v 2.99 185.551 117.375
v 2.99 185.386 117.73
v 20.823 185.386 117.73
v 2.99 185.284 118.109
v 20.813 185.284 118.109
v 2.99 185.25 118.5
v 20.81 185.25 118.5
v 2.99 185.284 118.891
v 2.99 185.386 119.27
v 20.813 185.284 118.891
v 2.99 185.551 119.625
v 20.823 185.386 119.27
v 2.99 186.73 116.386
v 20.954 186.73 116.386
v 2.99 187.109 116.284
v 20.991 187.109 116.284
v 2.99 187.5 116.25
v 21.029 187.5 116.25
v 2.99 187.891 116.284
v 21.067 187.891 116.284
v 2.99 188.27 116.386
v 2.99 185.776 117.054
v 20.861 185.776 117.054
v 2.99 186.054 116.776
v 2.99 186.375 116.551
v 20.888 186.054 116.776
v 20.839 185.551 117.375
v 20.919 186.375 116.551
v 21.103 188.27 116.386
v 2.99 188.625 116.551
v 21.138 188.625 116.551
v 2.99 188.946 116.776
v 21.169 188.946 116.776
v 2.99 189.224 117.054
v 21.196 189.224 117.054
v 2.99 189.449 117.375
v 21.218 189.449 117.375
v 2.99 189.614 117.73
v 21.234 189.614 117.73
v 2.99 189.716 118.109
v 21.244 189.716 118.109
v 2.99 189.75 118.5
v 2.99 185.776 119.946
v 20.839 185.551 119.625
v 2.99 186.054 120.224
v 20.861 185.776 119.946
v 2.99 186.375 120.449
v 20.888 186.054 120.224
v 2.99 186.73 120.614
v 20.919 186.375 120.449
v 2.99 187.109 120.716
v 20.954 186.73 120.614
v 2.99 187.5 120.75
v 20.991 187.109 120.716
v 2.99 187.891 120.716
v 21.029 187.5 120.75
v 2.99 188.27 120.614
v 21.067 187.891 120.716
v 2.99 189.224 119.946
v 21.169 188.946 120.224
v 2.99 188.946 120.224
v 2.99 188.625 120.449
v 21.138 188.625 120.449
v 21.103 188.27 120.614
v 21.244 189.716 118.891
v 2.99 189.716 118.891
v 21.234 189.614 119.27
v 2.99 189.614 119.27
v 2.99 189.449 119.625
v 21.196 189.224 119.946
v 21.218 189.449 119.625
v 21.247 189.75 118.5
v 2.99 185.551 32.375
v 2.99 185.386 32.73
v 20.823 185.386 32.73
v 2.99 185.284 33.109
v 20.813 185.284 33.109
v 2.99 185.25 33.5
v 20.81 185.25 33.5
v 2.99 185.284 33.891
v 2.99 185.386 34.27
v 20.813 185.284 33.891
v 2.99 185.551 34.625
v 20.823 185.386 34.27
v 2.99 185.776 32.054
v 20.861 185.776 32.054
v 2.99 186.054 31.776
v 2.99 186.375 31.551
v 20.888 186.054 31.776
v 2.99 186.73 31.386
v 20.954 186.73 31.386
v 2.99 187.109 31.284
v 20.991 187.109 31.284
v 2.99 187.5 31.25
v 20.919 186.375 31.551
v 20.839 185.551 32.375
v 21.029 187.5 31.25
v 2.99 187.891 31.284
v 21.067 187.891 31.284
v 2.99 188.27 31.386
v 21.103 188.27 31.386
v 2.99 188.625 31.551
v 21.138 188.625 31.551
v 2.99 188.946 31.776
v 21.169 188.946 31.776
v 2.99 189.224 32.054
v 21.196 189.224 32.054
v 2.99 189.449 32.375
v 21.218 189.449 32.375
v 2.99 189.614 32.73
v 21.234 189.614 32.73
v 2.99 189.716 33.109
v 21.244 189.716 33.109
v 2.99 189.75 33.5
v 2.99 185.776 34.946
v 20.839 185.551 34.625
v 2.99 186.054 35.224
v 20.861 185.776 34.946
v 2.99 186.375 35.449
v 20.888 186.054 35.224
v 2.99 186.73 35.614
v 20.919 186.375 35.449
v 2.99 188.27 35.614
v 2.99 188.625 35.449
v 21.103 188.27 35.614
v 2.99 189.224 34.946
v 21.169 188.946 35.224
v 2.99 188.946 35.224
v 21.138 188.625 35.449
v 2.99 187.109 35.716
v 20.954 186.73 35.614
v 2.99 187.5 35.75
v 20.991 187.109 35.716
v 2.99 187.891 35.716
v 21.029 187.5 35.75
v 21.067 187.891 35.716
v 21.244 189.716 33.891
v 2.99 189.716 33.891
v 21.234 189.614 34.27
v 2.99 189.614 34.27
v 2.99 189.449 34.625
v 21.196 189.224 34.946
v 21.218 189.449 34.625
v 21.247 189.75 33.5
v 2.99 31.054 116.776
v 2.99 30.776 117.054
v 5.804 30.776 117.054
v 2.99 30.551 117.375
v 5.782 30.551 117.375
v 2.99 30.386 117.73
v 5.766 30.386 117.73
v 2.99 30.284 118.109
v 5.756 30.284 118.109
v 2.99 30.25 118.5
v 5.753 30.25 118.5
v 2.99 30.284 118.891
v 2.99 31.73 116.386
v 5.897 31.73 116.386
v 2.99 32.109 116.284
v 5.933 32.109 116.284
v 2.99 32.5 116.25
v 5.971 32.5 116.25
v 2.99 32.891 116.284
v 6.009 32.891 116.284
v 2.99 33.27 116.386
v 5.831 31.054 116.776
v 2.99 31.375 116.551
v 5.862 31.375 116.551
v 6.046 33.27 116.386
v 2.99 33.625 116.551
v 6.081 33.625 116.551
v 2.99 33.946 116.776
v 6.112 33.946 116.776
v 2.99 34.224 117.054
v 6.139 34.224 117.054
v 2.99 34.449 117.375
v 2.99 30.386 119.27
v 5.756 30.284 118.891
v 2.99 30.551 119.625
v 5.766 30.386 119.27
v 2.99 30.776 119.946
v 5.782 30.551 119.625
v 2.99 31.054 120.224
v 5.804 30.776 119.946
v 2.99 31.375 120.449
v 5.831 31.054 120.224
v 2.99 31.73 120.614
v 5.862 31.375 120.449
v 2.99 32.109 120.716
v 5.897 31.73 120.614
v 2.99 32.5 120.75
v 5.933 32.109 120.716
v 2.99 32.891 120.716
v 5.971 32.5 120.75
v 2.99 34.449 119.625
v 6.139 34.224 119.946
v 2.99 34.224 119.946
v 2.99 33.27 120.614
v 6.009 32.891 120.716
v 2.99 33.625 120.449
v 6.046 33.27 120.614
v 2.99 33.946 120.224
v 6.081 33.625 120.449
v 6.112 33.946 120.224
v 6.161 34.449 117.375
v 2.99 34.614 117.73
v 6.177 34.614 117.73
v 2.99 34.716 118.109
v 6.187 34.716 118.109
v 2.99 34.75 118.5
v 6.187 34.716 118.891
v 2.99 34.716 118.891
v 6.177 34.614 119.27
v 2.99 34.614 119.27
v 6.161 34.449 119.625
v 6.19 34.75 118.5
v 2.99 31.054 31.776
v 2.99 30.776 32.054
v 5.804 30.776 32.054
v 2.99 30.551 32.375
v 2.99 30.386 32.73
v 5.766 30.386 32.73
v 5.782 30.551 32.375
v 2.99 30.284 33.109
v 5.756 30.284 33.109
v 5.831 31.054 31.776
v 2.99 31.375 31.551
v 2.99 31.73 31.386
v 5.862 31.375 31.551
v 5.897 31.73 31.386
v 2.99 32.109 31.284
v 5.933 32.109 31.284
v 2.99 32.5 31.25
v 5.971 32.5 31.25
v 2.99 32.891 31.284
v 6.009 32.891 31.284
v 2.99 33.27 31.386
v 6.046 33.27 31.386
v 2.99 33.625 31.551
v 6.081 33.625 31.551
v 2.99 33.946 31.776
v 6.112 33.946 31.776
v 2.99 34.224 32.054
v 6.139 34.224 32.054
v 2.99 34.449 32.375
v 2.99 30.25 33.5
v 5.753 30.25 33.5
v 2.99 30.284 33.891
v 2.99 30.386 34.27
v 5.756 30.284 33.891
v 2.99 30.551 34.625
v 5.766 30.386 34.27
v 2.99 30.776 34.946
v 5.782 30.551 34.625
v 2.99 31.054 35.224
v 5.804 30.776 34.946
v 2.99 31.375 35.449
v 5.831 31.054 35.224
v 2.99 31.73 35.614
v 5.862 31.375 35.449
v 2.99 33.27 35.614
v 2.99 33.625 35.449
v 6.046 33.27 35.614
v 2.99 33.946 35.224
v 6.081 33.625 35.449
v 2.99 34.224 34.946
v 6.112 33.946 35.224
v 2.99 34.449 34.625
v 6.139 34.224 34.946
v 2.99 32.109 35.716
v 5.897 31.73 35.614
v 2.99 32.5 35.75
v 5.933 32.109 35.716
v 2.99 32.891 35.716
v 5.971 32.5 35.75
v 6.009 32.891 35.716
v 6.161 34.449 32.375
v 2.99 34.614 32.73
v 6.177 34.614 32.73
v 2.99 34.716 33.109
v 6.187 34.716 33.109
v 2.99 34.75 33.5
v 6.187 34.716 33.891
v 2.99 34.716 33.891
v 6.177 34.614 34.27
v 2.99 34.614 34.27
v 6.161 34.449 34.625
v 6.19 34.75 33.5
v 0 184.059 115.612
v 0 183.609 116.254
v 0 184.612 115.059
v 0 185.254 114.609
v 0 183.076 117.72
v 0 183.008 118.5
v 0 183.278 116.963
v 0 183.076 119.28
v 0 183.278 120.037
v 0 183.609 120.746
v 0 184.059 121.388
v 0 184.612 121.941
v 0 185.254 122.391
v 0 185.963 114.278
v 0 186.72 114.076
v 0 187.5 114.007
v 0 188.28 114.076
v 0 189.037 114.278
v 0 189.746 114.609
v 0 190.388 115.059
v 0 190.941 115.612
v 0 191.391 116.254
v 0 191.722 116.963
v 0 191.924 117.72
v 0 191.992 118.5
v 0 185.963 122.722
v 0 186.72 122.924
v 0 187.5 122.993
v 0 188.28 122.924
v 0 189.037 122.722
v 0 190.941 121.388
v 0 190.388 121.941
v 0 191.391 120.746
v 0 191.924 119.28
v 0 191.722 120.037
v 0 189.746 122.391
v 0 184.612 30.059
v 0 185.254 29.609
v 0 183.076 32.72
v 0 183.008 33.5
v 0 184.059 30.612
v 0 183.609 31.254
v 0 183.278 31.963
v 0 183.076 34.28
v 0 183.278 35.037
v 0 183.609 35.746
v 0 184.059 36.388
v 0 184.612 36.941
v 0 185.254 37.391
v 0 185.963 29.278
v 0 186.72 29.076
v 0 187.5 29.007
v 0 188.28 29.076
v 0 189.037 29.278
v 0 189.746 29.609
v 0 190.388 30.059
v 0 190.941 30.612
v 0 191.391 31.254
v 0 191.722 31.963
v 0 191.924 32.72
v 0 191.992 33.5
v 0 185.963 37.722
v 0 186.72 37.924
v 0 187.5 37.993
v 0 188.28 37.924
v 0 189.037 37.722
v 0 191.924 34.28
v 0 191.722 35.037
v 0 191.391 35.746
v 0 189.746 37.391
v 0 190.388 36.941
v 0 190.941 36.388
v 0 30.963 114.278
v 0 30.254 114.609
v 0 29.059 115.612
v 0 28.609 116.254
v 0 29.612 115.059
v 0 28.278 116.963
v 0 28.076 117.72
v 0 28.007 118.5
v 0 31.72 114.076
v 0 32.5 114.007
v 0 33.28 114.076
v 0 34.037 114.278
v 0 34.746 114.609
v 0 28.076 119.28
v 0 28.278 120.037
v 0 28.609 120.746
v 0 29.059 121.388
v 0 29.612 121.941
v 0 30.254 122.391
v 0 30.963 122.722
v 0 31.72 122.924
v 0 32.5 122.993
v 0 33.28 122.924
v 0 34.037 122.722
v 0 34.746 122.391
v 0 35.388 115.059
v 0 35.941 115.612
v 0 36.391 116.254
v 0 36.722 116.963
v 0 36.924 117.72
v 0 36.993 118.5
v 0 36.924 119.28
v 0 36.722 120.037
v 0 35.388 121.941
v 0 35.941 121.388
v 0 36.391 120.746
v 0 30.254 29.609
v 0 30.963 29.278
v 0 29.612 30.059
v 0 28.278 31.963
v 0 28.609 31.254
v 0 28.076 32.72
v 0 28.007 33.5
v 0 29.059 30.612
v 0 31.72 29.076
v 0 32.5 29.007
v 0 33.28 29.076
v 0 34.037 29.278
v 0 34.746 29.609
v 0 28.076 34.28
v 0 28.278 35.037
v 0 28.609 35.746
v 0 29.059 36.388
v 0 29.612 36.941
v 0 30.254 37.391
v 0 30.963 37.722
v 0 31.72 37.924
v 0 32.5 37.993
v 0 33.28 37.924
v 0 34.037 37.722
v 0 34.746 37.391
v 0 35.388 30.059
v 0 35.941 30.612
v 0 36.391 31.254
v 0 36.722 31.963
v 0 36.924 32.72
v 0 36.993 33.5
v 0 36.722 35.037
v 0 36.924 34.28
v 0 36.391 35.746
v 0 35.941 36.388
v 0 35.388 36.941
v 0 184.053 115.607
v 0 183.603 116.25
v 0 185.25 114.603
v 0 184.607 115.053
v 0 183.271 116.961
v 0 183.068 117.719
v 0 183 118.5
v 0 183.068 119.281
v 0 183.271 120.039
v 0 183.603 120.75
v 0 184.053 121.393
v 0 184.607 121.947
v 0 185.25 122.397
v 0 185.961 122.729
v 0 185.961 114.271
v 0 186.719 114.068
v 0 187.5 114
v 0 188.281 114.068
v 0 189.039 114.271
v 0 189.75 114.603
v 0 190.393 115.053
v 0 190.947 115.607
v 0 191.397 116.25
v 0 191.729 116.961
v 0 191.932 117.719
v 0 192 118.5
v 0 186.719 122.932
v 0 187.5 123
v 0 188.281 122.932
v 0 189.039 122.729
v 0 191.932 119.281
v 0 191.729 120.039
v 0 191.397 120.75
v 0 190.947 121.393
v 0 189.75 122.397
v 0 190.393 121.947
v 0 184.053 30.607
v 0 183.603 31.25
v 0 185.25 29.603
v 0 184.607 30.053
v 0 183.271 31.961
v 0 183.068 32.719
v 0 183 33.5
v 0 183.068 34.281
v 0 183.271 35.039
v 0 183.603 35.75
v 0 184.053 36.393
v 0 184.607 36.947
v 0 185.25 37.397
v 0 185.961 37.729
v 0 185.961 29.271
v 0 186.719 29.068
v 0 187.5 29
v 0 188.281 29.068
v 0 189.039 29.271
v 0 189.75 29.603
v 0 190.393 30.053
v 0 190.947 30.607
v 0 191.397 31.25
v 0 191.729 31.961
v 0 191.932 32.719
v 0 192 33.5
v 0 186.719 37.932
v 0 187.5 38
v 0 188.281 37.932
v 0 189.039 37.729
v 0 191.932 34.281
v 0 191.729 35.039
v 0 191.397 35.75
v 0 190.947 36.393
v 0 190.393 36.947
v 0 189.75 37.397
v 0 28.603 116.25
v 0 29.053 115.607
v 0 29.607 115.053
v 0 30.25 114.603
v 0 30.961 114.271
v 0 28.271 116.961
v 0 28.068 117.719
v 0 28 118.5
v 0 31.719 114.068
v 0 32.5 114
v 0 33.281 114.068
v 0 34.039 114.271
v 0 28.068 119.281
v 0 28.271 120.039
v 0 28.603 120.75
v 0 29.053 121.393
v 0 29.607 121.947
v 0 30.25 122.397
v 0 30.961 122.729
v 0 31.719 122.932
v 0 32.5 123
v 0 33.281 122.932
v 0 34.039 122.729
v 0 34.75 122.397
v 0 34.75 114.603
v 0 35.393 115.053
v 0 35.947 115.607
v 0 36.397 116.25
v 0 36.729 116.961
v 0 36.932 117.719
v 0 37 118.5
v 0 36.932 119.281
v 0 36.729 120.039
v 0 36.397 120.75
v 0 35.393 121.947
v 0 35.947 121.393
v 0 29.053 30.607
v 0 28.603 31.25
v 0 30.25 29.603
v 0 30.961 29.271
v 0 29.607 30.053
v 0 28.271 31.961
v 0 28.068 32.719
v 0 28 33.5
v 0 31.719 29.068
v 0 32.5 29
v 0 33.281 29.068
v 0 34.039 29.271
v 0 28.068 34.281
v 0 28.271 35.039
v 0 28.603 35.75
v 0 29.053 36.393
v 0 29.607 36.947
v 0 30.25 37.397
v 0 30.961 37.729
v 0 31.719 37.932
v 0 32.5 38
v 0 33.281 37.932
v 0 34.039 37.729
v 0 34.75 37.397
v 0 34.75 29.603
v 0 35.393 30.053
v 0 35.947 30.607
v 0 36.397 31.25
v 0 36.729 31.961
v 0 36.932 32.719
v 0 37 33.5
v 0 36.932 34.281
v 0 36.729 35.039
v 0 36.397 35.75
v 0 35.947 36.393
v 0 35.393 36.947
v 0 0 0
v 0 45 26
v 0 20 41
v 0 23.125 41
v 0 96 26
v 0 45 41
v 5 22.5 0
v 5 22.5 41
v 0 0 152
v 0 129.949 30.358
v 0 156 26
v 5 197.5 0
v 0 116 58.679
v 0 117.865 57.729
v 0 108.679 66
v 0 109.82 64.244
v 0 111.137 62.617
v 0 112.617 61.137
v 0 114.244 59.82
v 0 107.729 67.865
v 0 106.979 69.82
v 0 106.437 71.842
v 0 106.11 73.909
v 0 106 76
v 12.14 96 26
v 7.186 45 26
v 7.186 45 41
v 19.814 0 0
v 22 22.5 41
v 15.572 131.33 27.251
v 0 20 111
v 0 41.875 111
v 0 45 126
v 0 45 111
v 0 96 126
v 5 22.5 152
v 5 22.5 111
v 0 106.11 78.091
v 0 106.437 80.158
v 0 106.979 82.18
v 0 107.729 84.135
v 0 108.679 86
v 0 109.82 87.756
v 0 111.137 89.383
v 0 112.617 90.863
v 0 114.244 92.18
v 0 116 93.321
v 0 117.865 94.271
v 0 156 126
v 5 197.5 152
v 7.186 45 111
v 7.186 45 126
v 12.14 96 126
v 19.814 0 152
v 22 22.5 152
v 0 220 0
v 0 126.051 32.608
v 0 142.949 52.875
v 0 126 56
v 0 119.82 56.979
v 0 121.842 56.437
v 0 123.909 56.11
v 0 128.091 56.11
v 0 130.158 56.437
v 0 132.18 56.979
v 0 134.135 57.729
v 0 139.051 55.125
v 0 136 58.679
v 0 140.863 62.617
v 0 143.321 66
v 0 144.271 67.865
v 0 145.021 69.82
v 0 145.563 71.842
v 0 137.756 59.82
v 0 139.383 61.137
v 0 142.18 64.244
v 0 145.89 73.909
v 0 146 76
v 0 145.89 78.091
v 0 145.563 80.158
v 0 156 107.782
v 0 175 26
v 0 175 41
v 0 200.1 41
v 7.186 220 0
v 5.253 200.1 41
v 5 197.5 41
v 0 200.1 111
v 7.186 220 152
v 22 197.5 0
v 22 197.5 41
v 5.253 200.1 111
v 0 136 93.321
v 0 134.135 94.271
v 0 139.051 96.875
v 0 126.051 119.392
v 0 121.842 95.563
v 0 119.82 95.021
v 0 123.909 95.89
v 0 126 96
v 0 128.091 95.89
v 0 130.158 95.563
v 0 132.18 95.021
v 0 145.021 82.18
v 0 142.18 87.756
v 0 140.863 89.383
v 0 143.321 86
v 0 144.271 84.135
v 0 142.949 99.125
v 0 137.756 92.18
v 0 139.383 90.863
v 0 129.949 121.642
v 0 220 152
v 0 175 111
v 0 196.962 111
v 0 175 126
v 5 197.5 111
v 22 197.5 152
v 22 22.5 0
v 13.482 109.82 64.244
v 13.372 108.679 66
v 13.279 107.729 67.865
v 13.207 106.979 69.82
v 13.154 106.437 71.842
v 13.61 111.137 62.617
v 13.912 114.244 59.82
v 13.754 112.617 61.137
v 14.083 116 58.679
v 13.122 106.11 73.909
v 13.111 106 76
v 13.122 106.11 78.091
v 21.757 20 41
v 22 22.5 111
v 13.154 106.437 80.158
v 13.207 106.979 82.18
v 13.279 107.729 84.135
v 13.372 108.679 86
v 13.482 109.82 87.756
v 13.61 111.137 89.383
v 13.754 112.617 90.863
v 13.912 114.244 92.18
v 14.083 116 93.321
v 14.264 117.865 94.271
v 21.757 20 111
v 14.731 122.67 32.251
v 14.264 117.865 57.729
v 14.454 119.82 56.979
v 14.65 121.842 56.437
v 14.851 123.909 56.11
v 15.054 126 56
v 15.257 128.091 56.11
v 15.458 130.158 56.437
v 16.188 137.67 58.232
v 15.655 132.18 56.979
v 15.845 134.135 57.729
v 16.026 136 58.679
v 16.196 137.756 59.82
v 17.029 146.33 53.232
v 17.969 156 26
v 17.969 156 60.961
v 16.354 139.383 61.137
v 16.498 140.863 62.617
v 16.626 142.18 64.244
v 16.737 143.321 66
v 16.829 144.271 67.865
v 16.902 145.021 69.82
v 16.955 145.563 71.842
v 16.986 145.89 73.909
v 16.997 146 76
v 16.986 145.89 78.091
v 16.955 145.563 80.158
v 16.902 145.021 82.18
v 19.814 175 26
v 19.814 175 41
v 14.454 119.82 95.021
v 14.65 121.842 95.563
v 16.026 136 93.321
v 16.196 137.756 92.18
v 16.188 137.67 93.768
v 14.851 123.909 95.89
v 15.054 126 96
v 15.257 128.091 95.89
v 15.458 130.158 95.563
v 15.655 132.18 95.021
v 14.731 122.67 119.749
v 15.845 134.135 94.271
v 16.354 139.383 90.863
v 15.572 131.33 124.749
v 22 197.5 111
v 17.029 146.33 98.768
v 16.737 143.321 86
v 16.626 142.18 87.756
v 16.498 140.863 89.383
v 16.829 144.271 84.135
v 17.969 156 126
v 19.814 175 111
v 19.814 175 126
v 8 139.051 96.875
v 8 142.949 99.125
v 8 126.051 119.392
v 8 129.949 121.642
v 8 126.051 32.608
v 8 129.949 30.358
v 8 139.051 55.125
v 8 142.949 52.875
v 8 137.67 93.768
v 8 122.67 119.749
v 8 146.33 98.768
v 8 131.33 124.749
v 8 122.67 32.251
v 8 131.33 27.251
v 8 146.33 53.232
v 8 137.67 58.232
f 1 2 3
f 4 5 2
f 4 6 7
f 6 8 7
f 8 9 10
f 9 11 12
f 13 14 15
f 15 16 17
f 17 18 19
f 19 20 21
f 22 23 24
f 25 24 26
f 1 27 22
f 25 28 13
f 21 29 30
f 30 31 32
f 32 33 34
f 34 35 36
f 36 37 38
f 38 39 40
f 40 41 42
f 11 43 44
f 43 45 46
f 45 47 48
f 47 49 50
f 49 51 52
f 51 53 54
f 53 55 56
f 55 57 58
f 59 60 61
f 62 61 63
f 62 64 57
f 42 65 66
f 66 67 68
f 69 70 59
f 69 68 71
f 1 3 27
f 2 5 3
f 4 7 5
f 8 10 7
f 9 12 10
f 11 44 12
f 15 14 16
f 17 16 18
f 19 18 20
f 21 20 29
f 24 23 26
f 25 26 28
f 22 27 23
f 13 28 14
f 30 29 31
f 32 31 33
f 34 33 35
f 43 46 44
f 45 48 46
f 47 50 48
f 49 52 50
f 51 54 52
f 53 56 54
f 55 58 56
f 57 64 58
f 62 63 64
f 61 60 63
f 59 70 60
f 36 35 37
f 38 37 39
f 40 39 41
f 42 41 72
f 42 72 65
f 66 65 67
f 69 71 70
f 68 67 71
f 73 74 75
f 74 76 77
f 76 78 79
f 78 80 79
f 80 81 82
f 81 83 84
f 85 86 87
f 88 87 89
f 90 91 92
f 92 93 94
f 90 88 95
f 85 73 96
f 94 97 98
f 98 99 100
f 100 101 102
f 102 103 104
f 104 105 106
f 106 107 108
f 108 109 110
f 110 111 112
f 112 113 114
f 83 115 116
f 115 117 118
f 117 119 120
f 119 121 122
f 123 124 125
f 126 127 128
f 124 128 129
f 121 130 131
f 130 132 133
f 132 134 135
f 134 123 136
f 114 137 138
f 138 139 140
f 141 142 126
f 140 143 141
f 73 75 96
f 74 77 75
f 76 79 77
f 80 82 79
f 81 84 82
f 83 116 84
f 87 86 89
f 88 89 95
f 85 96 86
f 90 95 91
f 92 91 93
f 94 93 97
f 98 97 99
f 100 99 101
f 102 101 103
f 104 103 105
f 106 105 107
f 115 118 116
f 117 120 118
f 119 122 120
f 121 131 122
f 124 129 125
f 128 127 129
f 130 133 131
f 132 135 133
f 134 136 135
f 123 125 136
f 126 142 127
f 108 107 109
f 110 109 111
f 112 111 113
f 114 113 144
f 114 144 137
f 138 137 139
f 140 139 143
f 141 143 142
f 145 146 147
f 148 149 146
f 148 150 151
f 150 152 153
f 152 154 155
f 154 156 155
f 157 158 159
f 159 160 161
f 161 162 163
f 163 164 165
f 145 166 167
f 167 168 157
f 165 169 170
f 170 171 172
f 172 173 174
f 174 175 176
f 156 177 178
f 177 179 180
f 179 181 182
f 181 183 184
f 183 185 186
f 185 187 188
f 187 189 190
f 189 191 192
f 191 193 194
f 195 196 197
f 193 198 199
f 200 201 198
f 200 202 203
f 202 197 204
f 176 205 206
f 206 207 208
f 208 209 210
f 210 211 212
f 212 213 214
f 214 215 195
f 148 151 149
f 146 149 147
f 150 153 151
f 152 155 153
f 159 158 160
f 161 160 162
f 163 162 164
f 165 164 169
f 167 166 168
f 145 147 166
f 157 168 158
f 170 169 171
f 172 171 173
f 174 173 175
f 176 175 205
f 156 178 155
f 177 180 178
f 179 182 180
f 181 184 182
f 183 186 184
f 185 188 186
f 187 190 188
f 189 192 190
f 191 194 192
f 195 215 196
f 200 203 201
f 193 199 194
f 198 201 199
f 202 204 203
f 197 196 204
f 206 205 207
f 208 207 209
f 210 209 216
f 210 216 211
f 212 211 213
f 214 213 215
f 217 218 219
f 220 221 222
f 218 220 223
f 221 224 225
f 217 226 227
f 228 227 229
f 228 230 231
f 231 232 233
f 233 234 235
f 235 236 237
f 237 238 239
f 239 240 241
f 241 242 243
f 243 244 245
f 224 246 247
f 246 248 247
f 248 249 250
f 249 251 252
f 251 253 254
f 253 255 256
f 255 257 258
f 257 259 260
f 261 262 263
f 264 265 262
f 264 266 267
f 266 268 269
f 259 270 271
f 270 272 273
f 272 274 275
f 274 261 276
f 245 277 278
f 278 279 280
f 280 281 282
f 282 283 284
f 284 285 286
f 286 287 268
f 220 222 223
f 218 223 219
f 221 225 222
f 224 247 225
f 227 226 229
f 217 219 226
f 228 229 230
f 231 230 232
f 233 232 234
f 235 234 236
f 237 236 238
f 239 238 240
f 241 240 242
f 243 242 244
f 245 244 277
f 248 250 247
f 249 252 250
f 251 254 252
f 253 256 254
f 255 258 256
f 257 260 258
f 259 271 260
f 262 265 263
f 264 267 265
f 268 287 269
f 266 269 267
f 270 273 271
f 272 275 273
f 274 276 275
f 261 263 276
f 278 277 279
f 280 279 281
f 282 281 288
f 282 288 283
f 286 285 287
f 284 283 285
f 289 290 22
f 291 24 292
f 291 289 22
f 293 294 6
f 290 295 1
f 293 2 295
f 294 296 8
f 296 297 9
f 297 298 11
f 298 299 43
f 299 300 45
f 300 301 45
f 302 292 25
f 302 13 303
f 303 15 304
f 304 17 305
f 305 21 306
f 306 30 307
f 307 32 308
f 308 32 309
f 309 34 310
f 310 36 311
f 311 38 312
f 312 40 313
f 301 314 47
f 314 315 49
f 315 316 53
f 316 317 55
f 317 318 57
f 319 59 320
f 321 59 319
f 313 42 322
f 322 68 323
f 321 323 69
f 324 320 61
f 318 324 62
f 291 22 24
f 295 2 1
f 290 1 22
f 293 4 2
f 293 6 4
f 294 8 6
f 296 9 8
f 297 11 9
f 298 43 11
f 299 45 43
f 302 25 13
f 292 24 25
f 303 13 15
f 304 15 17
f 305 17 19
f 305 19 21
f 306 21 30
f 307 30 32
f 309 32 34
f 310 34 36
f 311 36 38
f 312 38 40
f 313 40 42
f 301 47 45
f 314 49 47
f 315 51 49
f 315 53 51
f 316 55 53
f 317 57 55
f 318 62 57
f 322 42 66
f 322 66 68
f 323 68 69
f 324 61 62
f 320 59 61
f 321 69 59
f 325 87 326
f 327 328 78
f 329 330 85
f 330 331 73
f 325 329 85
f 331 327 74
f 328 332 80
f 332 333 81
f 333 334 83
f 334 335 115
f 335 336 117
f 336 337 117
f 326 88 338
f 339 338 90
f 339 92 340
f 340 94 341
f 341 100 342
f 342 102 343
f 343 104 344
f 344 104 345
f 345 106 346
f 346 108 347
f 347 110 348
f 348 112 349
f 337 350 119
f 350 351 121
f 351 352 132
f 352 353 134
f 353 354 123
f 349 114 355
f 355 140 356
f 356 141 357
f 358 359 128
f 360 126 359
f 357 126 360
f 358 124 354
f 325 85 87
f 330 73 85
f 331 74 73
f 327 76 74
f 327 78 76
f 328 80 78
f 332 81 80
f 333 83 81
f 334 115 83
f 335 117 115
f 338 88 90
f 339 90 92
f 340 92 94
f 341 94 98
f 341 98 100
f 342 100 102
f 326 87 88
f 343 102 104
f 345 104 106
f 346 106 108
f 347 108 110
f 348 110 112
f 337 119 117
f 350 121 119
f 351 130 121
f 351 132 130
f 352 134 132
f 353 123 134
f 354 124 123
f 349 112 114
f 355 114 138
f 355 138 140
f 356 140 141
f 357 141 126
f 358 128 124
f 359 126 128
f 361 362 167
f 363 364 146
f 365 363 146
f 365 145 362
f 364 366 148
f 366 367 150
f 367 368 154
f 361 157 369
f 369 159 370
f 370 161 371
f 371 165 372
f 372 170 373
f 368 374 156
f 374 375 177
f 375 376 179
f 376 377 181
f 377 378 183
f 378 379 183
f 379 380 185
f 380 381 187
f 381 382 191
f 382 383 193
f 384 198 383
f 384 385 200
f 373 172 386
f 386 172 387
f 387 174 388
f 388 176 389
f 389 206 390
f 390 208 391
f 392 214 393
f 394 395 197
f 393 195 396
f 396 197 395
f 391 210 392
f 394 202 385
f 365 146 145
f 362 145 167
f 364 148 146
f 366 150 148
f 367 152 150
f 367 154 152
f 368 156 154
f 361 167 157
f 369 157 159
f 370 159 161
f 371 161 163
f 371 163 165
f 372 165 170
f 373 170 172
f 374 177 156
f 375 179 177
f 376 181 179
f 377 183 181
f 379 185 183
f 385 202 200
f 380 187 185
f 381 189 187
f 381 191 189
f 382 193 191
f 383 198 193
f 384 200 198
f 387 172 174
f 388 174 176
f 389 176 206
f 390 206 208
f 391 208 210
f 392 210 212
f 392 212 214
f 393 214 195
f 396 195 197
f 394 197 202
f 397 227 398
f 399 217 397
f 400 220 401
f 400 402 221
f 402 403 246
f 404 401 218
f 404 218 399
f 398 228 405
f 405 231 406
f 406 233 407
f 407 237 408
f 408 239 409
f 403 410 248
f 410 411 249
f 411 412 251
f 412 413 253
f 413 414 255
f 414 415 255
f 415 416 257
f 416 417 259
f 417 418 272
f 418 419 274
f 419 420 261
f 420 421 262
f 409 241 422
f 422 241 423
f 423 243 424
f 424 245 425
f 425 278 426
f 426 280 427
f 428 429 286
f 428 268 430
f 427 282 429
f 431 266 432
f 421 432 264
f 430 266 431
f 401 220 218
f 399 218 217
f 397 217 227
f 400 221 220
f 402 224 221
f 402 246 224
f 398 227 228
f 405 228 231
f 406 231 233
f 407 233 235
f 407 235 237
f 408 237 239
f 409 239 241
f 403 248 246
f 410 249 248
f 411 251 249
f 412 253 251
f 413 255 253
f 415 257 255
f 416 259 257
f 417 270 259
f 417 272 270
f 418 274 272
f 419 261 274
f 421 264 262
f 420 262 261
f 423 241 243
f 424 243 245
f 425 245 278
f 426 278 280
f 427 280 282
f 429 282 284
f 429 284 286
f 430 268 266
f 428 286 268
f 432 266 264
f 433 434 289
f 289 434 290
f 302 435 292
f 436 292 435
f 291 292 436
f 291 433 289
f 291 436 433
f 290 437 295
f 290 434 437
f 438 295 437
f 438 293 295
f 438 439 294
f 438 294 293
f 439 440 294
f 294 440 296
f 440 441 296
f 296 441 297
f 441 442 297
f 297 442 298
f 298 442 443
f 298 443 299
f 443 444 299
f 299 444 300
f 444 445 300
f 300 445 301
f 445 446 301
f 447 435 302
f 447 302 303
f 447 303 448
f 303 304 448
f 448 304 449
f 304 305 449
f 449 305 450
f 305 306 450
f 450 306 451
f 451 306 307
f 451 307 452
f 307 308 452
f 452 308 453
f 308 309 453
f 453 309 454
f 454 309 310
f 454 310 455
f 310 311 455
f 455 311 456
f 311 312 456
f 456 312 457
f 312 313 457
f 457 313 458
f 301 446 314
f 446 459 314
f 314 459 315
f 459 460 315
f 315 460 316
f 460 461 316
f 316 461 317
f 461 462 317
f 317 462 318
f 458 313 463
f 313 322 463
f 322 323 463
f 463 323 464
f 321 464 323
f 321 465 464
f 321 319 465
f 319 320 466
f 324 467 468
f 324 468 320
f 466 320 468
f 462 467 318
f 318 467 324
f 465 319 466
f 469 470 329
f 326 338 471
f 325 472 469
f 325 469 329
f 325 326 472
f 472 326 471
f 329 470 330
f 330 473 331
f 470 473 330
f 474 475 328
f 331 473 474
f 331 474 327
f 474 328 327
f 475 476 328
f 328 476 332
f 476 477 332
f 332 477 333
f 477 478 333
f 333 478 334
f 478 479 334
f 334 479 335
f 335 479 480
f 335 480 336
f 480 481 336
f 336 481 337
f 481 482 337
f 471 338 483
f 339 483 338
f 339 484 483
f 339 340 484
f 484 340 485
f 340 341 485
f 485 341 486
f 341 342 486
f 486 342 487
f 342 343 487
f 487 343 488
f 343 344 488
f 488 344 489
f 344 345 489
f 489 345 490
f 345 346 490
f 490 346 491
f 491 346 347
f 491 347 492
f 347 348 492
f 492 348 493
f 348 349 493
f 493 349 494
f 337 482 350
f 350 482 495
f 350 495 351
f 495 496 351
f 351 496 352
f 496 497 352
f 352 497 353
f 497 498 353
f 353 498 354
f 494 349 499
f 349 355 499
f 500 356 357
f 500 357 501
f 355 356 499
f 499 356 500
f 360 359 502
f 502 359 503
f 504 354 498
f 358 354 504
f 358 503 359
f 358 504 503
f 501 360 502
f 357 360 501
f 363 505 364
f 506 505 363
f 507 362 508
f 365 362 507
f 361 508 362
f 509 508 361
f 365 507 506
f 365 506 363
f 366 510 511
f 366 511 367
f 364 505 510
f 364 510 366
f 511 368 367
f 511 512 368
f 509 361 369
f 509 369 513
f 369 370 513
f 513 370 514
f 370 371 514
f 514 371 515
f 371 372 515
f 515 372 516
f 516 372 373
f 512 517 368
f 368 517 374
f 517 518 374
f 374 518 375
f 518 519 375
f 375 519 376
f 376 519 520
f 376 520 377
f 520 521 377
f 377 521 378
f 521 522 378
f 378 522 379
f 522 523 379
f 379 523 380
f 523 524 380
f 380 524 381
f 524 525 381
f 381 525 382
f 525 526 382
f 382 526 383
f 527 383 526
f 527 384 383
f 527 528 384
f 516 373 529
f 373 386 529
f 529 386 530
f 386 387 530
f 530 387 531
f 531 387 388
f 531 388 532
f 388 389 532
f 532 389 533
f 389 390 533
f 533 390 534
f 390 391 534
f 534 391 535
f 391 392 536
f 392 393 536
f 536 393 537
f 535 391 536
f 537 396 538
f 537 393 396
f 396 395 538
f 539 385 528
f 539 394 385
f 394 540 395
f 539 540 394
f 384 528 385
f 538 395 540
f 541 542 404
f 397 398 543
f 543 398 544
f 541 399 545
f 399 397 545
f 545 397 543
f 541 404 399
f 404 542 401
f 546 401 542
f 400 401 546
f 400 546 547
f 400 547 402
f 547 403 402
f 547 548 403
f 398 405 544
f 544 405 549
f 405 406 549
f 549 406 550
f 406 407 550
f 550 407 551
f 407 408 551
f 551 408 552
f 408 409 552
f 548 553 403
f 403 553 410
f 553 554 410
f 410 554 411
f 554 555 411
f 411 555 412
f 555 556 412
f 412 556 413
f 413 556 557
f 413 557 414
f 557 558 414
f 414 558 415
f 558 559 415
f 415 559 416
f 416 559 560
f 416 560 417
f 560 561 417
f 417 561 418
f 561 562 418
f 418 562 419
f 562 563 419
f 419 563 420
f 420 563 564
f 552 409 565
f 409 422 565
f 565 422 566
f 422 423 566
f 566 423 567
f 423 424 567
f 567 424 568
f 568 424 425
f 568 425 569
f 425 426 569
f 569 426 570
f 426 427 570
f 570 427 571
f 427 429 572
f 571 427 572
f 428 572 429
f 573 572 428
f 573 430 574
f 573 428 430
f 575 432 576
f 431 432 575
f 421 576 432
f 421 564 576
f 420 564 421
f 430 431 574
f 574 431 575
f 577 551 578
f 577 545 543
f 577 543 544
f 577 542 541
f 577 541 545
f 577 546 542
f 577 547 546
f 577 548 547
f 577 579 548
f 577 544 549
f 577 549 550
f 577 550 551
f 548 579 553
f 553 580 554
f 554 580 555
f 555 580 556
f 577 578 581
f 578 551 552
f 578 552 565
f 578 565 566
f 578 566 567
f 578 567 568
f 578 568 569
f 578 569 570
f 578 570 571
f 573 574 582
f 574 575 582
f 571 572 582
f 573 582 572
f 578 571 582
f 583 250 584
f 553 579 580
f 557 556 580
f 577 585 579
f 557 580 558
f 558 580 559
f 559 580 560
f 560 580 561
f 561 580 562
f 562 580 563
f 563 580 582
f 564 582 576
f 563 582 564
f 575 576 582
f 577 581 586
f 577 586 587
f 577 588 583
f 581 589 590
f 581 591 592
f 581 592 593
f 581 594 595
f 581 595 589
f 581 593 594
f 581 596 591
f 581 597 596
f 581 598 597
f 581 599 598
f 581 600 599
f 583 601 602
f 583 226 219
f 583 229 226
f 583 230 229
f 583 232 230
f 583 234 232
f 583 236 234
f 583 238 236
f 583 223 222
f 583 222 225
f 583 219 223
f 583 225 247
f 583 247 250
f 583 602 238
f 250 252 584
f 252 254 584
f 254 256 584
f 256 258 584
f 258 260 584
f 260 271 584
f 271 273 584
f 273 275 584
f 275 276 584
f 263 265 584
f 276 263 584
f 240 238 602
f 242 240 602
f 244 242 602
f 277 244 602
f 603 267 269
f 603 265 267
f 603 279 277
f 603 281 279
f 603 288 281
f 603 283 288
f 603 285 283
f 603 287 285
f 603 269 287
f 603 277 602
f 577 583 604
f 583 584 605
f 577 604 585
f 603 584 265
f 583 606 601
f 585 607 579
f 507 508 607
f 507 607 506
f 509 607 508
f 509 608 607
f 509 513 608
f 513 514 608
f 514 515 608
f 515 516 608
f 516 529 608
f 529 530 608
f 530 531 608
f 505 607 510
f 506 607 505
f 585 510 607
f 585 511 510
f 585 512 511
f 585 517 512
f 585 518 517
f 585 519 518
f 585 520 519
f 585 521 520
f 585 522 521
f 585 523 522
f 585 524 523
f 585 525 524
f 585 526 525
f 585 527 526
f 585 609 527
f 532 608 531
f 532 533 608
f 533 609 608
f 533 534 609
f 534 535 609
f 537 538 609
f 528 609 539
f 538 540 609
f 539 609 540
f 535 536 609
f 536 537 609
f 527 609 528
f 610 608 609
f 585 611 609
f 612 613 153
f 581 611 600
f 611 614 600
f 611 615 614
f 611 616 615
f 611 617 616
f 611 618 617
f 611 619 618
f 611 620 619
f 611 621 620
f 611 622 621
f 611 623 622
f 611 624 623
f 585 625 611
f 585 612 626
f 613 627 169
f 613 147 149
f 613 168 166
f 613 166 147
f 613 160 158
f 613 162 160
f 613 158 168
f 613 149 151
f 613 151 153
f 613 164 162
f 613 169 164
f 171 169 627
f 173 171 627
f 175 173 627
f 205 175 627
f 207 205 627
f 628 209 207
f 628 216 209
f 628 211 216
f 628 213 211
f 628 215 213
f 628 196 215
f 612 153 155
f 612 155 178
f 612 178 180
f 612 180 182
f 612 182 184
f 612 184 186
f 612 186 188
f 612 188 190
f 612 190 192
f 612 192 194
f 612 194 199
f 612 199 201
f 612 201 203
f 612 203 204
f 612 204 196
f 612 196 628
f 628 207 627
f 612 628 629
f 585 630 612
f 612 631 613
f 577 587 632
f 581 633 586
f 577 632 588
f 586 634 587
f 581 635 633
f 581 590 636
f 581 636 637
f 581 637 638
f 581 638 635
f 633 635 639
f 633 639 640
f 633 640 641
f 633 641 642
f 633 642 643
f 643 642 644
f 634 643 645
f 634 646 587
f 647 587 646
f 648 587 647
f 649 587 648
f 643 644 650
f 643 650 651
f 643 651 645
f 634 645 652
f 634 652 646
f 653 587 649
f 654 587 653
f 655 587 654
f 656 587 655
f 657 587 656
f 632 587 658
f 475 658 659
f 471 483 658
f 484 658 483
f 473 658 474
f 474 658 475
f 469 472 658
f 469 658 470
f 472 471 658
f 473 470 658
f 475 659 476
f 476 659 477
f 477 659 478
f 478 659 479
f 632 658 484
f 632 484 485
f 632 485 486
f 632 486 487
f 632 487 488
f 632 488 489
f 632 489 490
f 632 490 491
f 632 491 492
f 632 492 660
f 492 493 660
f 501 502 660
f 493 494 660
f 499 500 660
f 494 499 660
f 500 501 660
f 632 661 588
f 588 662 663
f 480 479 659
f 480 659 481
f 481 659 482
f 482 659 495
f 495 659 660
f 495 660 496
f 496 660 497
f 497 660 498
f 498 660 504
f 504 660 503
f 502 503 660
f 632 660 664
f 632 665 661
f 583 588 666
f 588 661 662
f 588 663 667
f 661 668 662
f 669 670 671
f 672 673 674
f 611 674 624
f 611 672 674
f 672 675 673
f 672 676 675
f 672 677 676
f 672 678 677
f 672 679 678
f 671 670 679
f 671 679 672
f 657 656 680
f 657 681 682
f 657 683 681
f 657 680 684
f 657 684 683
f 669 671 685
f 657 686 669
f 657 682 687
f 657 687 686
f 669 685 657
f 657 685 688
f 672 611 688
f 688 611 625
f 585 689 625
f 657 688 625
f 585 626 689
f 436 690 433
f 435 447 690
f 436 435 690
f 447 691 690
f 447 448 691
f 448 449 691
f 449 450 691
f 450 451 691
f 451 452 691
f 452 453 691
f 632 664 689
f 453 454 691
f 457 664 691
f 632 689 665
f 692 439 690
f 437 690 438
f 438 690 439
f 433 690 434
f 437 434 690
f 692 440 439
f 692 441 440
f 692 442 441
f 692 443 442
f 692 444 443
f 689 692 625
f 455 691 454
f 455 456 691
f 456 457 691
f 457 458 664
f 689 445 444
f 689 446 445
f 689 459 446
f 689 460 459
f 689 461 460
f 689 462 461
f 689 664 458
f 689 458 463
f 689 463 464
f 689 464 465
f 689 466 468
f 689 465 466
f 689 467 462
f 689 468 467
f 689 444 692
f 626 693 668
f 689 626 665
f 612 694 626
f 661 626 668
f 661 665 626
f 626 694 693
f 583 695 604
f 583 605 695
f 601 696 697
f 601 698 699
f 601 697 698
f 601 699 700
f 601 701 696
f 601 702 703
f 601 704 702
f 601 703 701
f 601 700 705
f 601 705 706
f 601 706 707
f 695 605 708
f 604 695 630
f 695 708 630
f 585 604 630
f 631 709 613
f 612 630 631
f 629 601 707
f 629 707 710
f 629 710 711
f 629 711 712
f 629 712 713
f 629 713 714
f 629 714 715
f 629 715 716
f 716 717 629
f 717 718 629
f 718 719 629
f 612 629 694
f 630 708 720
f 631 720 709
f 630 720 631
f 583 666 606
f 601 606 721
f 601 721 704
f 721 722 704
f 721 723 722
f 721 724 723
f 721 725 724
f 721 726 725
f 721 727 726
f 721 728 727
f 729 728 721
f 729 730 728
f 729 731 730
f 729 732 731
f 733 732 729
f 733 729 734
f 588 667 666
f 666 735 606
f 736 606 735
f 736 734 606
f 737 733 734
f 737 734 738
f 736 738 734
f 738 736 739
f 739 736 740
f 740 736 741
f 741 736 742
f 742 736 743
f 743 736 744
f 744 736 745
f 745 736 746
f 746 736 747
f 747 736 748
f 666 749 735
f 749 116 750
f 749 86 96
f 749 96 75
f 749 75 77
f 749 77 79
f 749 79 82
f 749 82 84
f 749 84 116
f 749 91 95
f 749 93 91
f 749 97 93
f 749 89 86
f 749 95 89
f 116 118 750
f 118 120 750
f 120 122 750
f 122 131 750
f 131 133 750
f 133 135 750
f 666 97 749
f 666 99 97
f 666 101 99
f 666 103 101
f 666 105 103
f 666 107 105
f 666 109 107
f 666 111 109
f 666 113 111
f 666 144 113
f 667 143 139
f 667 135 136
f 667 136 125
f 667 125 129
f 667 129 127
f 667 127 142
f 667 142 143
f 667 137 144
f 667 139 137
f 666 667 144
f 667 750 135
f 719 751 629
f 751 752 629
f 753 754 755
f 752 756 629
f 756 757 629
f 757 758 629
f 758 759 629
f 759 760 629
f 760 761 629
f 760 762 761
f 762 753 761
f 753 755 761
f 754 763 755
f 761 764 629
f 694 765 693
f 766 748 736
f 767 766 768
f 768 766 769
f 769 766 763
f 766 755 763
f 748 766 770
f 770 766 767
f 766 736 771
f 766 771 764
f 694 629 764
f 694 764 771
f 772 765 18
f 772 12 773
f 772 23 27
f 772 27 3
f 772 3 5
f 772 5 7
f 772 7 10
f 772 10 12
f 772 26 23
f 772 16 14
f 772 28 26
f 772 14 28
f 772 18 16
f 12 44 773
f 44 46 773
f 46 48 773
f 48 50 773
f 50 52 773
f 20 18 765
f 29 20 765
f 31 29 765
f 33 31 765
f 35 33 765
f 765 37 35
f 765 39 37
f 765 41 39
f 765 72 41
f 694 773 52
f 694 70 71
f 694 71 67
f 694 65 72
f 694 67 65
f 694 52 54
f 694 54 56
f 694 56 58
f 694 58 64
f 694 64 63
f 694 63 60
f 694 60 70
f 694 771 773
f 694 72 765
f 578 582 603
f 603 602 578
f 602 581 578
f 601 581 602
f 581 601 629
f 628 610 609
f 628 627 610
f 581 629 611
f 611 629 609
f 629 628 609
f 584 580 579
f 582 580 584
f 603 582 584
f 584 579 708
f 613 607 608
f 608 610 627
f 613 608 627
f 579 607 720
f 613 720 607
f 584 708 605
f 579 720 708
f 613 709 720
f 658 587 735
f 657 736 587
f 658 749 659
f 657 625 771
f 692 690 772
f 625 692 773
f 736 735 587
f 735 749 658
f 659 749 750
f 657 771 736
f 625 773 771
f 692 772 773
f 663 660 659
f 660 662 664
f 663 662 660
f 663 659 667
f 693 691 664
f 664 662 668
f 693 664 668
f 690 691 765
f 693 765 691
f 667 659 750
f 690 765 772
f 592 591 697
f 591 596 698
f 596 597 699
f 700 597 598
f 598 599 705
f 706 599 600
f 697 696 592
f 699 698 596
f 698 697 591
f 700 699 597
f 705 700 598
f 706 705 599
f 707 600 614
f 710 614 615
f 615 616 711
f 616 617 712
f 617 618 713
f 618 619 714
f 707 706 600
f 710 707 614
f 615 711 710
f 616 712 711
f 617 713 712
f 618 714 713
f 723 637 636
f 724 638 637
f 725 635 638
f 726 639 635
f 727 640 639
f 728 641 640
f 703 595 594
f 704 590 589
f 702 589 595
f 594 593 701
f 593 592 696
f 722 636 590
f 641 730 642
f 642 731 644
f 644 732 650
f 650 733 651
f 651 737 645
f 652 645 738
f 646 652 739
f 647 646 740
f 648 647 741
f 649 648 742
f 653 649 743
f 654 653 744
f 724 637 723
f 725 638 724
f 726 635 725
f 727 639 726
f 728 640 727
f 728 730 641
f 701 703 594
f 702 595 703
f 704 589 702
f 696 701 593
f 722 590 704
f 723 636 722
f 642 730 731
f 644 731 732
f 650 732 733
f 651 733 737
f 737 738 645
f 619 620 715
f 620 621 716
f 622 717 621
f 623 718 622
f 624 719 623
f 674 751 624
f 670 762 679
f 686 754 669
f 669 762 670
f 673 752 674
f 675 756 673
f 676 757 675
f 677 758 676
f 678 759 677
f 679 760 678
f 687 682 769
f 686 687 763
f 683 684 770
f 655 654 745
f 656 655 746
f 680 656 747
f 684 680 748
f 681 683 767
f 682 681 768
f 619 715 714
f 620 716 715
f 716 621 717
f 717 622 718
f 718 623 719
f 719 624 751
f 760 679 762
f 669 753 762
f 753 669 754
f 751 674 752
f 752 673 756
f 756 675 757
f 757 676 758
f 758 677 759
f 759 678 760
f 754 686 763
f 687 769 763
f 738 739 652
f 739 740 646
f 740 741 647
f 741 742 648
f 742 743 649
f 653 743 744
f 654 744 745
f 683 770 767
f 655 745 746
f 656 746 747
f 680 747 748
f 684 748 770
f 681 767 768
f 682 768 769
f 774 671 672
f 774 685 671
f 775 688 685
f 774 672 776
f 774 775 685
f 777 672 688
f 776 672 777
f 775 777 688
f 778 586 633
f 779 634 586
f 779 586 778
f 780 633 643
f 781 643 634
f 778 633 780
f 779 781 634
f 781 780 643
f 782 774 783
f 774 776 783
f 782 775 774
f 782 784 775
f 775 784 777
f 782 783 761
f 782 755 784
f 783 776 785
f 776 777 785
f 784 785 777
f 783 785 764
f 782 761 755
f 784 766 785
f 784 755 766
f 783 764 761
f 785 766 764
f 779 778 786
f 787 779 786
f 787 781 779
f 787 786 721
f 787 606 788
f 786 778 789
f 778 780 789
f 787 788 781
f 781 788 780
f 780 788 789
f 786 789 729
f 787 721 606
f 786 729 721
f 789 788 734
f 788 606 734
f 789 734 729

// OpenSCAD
// Angled Siding Mount Compensator - Offset V-Tracks

/* [Light Dimensions] */
// Total height of the light fixture base (mm)
light_height = 180;
// Total width of the light fixture base (mm)
light_width = 112;

/* [Mount Aesthetics & Clearances] */
// How much wider/taller the mount is than the light (mm per side)
plate_margin = 20; 
// Width of the inner hollow cutout (mm)
opening_width = 100;
// Bottom solid border thickness (mm)
bottom_border = 20;
// Top solid border thickness (mm)
top_border = 20;

/* [Light Mounting Bracket (The Bridge)] */
// Distance from the BOTTOM of the LAMP to the center of the bracket hole (mm)
lamp_mount_center = 106;
// Total height of the solid mounting bridge (mm)
bridge_height = 60;
// Diameter of the central clearance hole (mm)
center_hole_dia = 40;
// Length of the angled screw slots for adjustability (mm)
slot_length = 26;
// Width of the screw tracks (4.5mm perfectly fits standard #8 or M4 fixture bolts)
bracket_slot_width = 4.5;
// Horizontal distance from center line where the tracks START (mm)
slot_start_dist = 22; 
// Vertical distance ABOVE the center line where the tracks START (mm)
slot_start_y_offset = 15;
// Solid thickness of the bridge where the bracket mounts (mm)
bridge_thickness = 8;
// Width of the recessed track on the back for the hex nut (mm)
nut_recess_width = 10; 

/* [Siding Profile] */
// The horizontal "step" depth of the siding board (mm)
siding_rise = 17;   
// The vertical exposed length of the siding board (mm)
siding_run = 175;   

/* [Wall Mounting Screws (Hidden in corners)] */
screw_hole_dia = 4.5;
screw_head_dia = 9.0;
screw_head_depth = 3.0;
tab_width = 15;
tab_height = 25;

/* [Mount Settings] */
// Minimum thickness of the mount at the thinnest point (bottom)
min_thickness = 5;  

/* [Calculated Values] */
// Total dimensions of the 3D printed plate
mount_height = light_height + (plate_margin * 2); // 220 mm
mount_width = light_width + (plate_margin * 2);   // 152 mm

// Center coordinates
center_z = mount_width / 2;
mount_center_y = lamp_mount_center + plate_margin;
bridge_top_y = mount_center_y + (bridge_height / 2);
bridge_bottom_y = mount_center_y - (bridge_height / 2);

// Slope of the siding
slope = siding_rise / siding_run;

// AUTO-CENTERING LOGIC
lap1_y = (mount_height - siding_run) / 2;
lap2_y = lap1_y + siding_run;

// Functions to calculate thickness at any Y coordinate
function t_b0(y) = min_thickness + (y - (lap1_y - siding_run)) * slope; 
function t_b1(y) = min_thickness + (y - lap1_y) * slope;                
function t_b2(y) = min_thickness + (y - lap2_y) * slope;                

module siding_mount() {
    
    // Assemble the polygon points for the sawtooth back
    p_base = [
        [0, 0],                               
        [t_b0(0), 0],                         
        [t_b0(lap1_y), lap1_y],               
        [t_b1(lap1_y), lap1_y]                
    ];
    
    p_lap2 = (lap2_y < mount_height) ? [
        [t_b1(lap2_y), lap2_y],               
        [t_b2(lap2_y), lap2_y],               
        [t_b2(mount_height), mount_height]    
    ] : [
        [t_b1(mount_height), mount_height]    
    ];
    
    p_top = [ [0, mount_height] ];
    poly_points = concat(p_base, p_lap2, p_top);

    difference() {
        // Main wedge body
        linear_extrude(height = mount_width, center=false) {
            polygon(points = poly_points);
        }
        
        side_border = (mount_width - opening_width) / 2;
        max_cut_depth = 80; 
        
        // --- HOLLOW REGIONS ---
        
        // 1. Lower Hollow 
        translate([-10, bottom_border + tab_height, side_border])
            cube([max_cut_depth, bridge_bottom_y - (bottom_border + tab_height), opening_width]);
            
        // 2. Bottom Tab Hollow 
        translate([-10, bottom_border, side_border + tab_width])
            cube([max_cut_depth, tab_height + 0.1, opening_width - (tab_width * 2)]);

        // 3. Upper Hollow 
        translate([-10, bridge_top_y, side_border])
            cube([max_cut_depth, mount_height - top_border - tab_height - bridge_top_y, opening_width]);
            
        // 4. Top Tab Hollow 
        translate([-10, mount_height - top_border - tab_height, side_border + tab_width])
            cube([max_cut_depth, tab_height + 0.1, opening_width - (tab_width * 2)]);

        // --- BRIDGE CUTOUTS ---

        // 5. Central clearance hole in the bridge
        translate([-10, mount_center_y, center_z])
            rotate([0, 90, 0])
            cylinder(h = max_cut_depth, d = center_hole_dia, $fn=60);

        // 6. Right mounting slot (Front side - Angled 30 degrees Up & Out)
        translate([-10, mount_center_y + slot_start_y_offset, center_z + slot_start_dist])
            rotate([30, 0, 0])
            translate([0, -bracket_slot_width / 2, 0])
            cube([max_cut_depth, bracket_slot_width, slot_length]);
            
        // 7. Left mounting slot (Front side - Mirrored to butterfly Up & Out)
        translate([-10, mount_center_y + slot_start_y_offset, center_z - slot_start_dist])
            mirror([0, 0, 1])
            rotate([30, 0, 0])
            translate([0, -bracket_slot_width / 2, 0])
            cube([max_cut_depth, bracket_slot_width, slot_length]);

        // 8. Right NUT RECESS (Back side)
        translate([bridge_thickness, mount_center_y + slot_start_y_offset, center_z + slot_start_dist])
            rotate([30, 0, 0])
            translate([0, -nut_recess_width / 2, -2]) // Starts slightly before 0 for clearance
            cube([max_cut_depth, nut_recess_width, slot_length + 4]);

        // 9. Left NUT RECESS (Back side)
        translate([bridge_thickness, mount_center_y + slot_start_y_offset, center_z - slot_start_dist])
            mirror([0, 0, 1])
            rotate([30, 0, 0])
            translate([0, -nut_recess_width / 2, -2]) // Starts slightly before 0 for clearance
            cube([max_cut_depth, nut_recess_width, slot_length + 4]);

        // --- CORNER MOUNTING SCREWS ---

        // 10. Left Bottom Corner Screw
        translate([0, bottom_border + (tab_height / 2), side_border + (tab_width / 2)])
            rotate([0, 90, 0]) {
                cylinder(h = max_cut_depth, d = screw_hole_dia, $fn=36);
                translate([0, 0, -0.01]) cylinder(h = screw_head_depth, d1 = screw_head_dia, d2 = screw_hole_dia, $fn=36);
                translate([0, 0, -5]) cylinder(h = 5, d = screw_head_dia, $fn=36);
            }

        // 11. Right Bottom Corner Screw
        translate([0, bottom_border + (tab_height / 2), mount_width - side_border - (tab_width / 2)])
            rotate([0, 90, 0]) {
                cylinder(h = max_cut_depth, d = screw_hole_dia, $fn=36);
                translate([0, 0, -0.01]) cylinder(h = screw_head_depth, d1 = screw_head_dia, d2 = screw_hole_dia, $fn=36);
                translate([0, 0, -5]) cylinder(h = 5, d = screw_head_dia, $fn=36);
            }
            
        // 12. Left Top Corner Screw
        translate([0, mount_height - top_border - (tab_height / 2), side_border + (tab_width / 2)])
            rotate([0, 90, 0]) {
                cylinder(h = max_cut_depth, d = screw_hole_dia, $fn=36);
                translate([0, 0, -0.01]) cylinder(h = screw_head_depth, d1 = screw_head_dia, d2 = screw_hole_dia, $fn=36);
                translate([0, 0, -5]) cylinder(h = 5, d = screw_head_dia, $fn=36);
            }

        // 13. Right Top Corner Screw
        translate([0, mount_height - top_border - (tab_height / 2), mount_width - side_border - (tab_width / 2)])
            rotate([0, 90, 0]) {
                cylinder(h = max_cut_depth, d = screw_hole_dia, $fn=36);
                translate([0, 0, -0.01]) cylinder(h = screw_head_depth, d1 = screw_head_dia, d2 = screw_hole_dia, $fn=36);
                translate([0, 0, -5]) cylinder(h = 5, d = screw_head_dia, $fn=36);
            }
    }
}

// Render the part
siding_mount();
